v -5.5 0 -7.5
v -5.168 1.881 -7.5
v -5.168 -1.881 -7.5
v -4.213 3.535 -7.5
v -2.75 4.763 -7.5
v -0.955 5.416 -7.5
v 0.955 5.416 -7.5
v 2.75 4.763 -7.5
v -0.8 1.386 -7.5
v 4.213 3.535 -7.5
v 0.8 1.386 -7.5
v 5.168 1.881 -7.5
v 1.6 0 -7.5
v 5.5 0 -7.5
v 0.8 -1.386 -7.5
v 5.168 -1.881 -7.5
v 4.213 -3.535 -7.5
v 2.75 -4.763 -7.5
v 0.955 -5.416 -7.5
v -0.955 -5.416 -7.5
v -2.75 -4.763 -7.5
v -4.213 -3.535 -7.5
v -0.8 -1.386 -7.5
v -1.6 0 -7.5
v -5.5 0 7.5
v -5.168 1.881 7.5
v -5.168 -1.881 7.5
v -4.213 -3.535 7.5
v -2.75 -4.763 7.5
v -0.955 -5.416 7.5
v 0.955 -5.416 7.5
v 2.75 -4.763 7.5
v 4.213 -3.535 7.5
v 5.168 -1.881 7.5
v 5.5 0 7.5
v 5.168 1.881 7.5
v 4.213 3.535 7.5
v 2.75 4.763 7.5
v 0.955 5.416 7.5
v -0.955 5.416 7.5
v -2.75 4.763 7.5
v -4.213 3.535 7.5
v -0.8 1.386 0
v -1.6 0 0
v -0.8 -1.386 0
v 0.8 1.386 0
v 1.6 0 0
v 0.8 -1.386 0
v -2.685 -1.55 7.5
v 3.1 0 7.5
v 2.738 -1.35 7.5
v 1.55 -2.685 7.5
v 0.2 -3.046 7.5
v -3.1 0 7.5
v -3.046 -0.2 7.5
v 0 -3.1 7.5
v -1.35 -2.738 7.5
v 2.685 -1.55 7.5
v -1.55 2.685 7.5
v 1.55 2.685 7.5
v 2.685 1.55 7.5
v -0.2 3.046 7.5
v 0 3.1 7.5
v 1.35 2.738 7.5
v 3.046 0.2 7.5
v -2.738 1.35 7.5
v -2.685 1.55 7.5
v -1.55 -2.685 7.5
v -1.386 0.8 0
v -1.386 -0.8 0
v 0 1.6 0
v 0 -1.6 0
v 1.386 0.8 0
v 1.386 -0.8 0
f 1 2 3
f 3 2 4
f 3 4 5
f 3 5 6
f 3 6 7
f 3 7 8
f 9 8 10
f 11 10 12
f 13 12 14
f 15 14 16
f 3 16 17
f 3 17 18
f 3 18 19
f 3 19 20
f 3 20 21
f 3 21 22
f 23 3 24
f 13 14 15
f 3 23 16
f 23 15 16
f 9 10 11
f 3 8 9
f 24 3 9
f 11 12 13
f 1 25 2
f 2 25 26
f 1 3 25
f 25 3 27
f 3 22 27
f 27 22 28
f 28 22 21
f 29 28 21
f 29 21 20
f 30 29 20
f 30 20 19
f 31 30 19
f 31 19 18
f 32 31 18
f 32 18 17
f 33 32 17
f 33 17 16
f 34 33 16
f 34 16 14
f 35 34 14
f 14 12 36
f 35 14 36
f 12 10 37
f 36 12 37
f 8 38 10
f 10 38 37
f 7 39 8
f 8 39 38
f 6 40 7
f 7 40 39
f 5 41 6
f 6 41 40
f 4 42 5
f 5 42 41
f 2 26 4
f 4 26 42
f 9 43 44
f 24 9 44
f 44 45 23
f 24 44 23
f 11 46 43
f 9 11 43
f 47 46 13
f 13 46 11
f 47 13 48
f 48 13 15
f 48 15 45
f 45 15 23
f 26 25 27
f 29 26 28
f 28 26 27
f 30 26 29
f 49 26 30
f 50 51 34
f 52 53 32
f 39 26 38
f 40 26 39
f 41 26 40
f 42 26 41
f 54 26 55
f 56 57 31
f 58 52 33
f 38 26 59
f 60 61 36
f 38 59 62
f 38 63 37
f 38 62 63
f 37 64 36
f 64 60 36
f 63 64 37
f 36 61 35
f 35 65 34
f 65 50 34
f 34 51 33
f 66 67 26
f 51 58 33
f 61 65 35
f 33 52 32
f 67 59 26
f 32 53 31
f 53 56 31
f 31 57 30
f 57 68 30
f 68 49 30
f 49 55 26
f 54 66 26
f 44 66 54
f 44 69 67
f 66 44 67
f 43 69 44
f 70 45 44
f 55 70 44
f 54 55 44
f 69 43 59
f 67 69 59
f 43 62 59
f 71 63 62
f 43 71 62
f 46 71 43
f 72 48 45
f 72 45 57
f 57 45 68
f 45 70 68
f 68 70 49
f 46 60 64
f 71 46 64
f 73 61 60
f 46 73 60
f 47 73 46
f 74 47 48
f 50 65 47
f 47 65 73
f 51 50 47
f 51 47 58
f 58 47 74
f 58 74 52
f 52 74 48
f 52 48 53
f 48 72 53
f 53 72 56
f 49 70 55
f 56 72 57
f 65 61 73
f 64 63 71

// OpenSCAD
difference() {
  cylinder(h=15, r1=5.5, r2=5.5, center=true);
  cylinder(h=17, r1=1.6, r2=1.6, center=true);

  translate([0, 0, 5])
  cylinder(h=10, r1=1.6, r2=3.6, center=true);
}
